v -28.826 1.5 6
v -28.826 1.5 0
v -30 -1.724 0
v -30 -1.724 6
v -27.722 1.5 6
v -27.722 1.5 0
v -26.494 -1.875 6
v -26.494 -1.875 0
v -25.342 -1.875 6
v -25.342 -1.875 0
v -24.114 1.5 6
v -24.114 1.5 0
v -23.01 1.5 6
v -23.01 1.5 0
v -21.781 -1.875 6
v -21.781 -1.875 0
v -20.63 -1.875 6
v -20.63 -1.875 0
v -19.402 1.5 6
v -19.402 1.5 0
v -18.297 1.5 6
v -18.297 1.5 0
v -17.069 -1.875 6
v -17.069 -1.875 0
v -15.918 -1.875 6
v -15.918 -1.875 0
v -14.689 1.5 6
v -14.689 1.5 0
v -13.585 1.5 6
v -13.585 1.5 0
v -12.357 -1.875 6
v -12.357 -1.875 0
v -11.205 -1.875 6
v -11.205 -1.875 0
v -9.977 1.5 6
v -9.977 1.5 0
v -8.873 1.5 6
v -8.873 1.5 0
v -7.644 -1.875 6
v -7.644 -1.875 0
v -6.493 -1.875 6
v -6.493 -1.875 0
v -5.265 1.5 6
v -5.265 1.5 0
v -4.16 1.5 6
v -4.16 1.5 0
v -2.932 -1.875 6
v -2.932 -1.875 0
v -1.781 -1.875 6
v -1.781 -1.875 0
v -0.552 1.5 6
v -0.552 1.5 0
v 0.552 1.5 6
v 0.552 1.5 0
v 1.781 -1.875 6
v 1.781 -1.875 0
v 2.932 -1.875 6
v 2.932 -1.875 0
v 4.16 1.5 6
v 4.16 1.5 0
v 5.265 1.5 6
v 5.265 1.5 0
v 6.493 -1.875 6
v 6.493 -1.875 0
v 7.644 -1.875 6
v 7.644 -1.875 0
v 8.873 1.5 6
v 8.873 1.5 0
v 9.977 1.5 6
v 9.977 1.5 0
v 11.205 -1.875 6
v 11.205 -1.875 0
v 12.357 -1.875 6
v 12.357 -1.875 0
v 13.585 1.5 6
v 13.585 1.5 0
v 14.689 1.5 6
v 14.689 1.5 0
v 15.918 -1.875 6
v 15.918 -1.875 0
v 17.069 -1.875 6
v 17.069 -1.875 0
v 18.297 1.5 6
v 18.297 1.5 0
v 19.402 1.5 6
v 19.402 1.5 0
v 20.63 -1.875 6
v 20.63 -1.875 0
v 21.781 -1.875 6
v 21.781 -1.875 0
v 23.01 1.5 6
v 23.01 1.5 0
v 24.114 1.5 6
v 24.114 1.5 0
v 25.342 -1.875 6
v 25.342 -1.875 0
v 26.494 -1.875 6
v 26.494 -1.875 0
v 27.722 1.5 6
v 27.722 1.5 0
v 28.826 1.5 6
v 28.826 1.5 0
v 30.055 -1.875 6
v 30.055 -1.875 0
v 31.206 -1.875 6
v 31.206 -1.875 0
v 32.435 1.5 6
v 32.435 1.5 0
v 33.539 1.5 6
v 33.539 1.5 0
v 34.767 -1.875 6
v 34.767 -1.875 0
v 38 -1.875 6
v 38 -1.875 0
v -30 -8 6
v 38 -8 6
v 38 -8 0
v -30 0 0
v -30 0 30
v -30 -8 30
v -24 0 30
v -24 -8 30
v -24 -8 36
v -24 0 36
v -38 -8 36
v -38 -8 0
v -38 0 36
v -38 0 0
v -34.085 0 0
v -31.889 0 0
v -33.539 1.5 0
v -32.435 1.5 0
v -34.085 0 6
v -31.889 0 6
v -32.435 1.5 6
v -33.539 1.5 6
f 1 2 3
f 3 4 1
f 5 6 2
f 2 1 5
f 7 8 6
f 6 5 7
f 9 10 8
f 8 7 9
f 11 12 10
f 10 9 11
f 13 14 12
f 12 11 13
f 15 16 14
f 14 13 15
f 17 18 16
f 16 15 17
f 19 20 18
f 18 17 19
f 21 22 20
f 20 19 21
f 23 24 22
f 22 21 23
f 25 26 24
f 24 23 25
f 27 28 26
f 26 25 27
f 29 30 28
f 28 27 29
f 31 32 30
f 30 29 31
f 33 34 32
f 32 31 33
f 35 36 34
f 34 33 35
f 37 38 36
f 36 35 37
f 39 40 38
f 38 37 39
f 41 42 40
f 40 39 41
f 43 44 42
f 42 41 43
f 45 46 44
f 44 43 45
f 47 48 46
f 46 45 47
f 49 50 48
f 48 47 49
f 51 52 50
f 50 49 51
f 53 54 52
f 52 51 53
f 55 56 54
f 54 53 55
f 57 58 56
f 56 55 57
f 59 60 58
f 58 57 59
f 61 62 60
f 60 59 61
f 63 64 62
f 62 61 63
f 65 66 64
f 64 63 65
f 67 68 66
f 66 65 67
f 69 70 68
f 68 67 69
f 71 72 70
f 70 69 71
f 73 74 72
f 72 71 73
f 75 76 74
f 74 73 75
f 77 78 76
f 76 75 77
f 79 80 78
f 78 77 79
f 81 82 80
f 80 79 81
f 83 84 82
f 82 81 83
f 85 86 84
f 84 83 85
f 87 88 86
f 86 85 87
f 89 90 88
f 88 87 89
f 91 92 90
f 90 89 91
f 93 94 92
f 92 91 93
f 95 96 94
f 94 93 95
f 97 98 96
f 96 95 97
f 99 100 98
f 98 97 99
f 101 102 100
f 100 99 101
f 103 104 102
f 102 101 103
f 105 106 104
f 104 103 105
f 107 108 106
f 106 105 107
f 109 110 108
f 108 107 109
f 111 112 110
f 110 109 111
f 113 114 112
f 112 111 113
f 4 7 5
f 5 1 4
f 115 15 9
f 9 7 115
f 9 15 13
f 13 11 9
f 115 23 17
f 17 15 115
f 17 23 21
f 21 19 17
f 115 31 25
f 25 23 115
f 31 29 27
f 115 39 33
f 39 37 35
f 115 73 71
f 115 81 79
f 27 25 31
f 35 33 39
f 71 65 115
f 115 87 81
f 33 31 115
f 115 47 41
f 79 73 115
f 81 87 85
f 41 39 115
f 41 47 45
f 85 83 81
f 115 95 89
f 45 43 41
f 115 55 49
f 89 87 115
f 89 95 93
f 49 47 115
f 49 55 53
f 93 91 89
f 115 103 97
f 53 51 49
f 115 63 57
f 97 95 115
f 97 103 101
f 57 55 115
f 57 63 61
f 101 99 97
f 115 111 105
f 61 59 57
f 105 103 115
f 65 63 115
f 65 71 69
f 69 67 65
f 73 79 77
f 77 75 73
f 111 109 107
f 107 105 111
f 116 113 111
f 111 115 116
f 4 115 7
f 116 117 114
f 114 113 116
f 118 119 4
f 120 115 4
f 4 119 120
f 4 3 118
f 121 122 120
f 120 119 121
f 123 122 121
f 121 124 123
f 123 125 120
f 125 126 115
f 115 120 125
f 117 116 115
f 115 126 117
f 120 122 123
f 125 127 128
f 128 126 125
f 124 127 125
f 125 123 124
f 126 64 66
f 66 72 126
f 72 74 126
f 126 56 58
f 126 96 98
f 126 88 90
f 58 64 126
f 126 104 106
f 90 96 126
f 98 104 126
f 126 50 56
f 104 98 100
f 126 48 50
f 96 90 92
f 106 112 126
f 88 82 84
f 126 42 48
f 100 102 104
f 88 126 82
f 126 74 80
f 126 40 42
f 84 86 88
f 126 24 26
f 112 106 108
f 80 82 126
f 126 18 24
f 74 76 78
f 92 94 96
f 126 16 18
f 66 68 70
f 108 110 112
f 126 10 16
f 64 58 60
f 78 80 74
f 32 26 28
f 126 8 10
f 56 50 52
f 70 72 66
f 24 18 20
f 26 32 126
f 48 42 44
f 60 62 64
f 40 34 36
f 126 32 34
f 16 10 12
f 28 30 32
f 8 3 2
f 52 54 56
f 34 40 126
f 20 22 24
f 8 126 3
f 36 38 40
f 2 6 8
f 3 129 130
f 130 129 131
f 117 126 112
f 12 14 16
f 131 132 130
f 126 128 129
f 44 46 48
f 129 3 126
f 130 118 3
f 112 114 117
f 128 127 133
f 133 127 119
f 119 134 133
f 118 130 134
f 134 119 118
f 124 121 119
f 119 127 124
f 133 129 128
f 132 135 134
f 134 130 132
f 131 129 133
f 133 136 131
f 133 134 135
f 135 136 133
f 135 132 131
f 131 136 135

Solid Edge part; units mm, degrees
sketch "Sketch1" plane through (0, 0, 0) normal (0, 0, 1) x (1, 0, 0)
  line L0 (-38, -8) -> (38, -8)
  line L1 (38, -8) -> (38, -1.875)
  line L2 (38, -1.875) -> (34.7673, -1.875)
  line L3 (34.7673, -1.875) -> (33.5389, 1.5)
  line L4 (33.5389, 1.5) -> (32.4346, 1.5)
  line L5 (32.4346, 1.5) -> (31.2062, -1.875)
  line L6 (31.2062, -1.875) -> (30.0549, -1.875)
  line L7 (30.0549, -1.875) -> (28.8265, 1.5)
  line L8 (28.8265, 1.5) -> (27.7222, 1.5)
  line L9 (27.7222, 1.5) -> (26.4938, -1.875)
  line L10 (26.4938, -1.875) -> (25.3425, -1.875)
  line L11 (25.3425, -1.875) -> (24.1141, 1.5)
  line L12 (24.1141, 1.5) -> (23.0098, 1.5)
  line L13 (23.0098, 1.5) -> (21.7814, -1.875)
  line L14 (21.7814, -1.875) -> (20.6301, -1.875)
  line L15 (20.6301, -1.875) -> (19.4017, 1.5)
  line L16 (19.4017, 1.5) -> (18.2974, 1.5)
  line L17 (18.2974, 1.5) -> (17.069, -1.875)
  line L18 (17.069, -1.875) -> (15.9177, -1.875)
  line L19 (15.9177, -1.875) -> (14.6893, 1.5)
  line L20 (14.6893, 1.5) -> (13.585, 1.5)
  line L21 (13.585, 1.5) -> (12.3566, -1.875)
  line L22 (12.3566, -1.875) -> (11.2053, -1.875)
  line L23 (11.2053, -1.875) -> (9.9769, 1.5)
  line L24 (9.9769, 1.5) -> (8.8726, 1.5)
  line L25 (8.8726, 1.5) -> (7.6442, -1.875)
  line L26 (7.6442, -1.875) -> (6.4929, -1.875)
  line L27 (6.4929, -1.875) -> (5.2645, 1.5)
  line L28 (5.2645, 1.5) -> (4.1602, 1.5)
  line L29 (4.1602, 1.5) -> (2.9318, -1.875)
  line L30 (2.9318, -1.875) -> (1.7805, -1.875)
  line L31 (1.7805, -1.875) -> (0.5521, 1.5)
  line L32 (0.5521, 1.5) -> (-0.5521, 1.5)
  line L33 (-0.5521, 1.5) -> (-1.7805, -1.875)
  line L34 (-1.7805, -1.875) -> (-2.9318, -1.875)
  line L35 (-2.9318, -1.875) -> (-4.1602, 1.5)
  line L36 (-4.1602, 1.5) -> (-5.2645, 1.5)
  line L37 (-5.2645, 1.5) -> (-6.4929, -1.875)
  line L38 (-6.4929, -1.875) -> (-7.6442, -1.875)
  line L39 (-7.6442, -1.875) -> (-8.8726, 1.5)
  line L40 (-8.8726, 1.5) -> (-9.9769, 1.5)
  line L41 (-9.9769, 1.5) -> (-11.2053, -1.875)
  line L42 (-11.2053, -1.875) -> (-12.3566, -1.875)
  line L43 (-12.3566, -1.875) -> (-13.585, 1.5)
  line L44 (-13.585, 1.5) -> (-14.6893, 1.5)
  line L45 (-14.6893, 1.5) -> (-15.9177, -1.875)
  line L46 (-15.9177, -1.875) -> (-17.069, -1.875)
  line L47 (-17.069, -1.875) -> (-18.2974, 1.5)
  line L48 (-18.2974, 1.5) -> (-19.4017, 1.5)
  line L49 (-19.4017, 1.5) -> (-20.6301, -1.875)
  line L50 (-20.6301, -1.875) -> (-21.7814, -1.875)
  line L51 (-21.7814, -1.875) -> (-23.0098, 1.5)
  line L52 (-23.0098, 1.5) -> (-24.1141, 1.5)
  line L53 (-24.1141, 1.5) -> (-25.3425, -1.875)
  line L54 (-25.3425, -1.875) -> (-26.4938, -1.875)
  line L55 (-26.4938, -1.875) -> (-27.7222, 1.5)
  line L56 (-27.7222, 1.5) -> (-28.8265, 1.5)
  line L57 (-28.8265, 1.5) -> (-30.0549, -1.875)
  line L58 (-30.0549, -1.875) -> (-31.2062, -1.875)
  line L59 (-31.2062, -1.875) -> (-32.4346, 1.5)
  line L60 (-32.4346, 1.5) -> (-33.5389, 1.5)
  line L61 (-33.5389, 1.5) -> (-34.7673, -1.875)
  line L62 (-34.7673, -1.875) -> (-38, -1.875)
  line L63 (-38, -1.875) -> (-38, -8)
extrude "Protrusion1" add sketch "Sketch1" along normal blind 6
sketch "Sketch2" plane through (0, 0, 0) normal (0, 0, 1) x (1, 0, 0)
  line L0 (-38, -8) -> (-30, -8)
  line L1 (-30, -8) -> (-30, 0)
  line L2 (-30, 0) -> (-38, 0)
  line L3 (-38, 0) -> (-38, -8)
extrude "ExtrudedProtrusion_2" add sketch "Sketch2" along normal blind 36
sketch "Sketch3" plane through (0, 0, 30) normal (0, 0, 1) x (1, 0, 0)
  line L0 (-38, -8) -> (-24, -8)
  line L1 (-24, -8) -> (-24, 0)
  line L2 (-24, 0) -> (-38, 0)
  line L3 (-38, 0) -> (-38, -8)
extrude "ExtrudedProtrusion_3" add sketch "Sketch3" along normal blind 6
